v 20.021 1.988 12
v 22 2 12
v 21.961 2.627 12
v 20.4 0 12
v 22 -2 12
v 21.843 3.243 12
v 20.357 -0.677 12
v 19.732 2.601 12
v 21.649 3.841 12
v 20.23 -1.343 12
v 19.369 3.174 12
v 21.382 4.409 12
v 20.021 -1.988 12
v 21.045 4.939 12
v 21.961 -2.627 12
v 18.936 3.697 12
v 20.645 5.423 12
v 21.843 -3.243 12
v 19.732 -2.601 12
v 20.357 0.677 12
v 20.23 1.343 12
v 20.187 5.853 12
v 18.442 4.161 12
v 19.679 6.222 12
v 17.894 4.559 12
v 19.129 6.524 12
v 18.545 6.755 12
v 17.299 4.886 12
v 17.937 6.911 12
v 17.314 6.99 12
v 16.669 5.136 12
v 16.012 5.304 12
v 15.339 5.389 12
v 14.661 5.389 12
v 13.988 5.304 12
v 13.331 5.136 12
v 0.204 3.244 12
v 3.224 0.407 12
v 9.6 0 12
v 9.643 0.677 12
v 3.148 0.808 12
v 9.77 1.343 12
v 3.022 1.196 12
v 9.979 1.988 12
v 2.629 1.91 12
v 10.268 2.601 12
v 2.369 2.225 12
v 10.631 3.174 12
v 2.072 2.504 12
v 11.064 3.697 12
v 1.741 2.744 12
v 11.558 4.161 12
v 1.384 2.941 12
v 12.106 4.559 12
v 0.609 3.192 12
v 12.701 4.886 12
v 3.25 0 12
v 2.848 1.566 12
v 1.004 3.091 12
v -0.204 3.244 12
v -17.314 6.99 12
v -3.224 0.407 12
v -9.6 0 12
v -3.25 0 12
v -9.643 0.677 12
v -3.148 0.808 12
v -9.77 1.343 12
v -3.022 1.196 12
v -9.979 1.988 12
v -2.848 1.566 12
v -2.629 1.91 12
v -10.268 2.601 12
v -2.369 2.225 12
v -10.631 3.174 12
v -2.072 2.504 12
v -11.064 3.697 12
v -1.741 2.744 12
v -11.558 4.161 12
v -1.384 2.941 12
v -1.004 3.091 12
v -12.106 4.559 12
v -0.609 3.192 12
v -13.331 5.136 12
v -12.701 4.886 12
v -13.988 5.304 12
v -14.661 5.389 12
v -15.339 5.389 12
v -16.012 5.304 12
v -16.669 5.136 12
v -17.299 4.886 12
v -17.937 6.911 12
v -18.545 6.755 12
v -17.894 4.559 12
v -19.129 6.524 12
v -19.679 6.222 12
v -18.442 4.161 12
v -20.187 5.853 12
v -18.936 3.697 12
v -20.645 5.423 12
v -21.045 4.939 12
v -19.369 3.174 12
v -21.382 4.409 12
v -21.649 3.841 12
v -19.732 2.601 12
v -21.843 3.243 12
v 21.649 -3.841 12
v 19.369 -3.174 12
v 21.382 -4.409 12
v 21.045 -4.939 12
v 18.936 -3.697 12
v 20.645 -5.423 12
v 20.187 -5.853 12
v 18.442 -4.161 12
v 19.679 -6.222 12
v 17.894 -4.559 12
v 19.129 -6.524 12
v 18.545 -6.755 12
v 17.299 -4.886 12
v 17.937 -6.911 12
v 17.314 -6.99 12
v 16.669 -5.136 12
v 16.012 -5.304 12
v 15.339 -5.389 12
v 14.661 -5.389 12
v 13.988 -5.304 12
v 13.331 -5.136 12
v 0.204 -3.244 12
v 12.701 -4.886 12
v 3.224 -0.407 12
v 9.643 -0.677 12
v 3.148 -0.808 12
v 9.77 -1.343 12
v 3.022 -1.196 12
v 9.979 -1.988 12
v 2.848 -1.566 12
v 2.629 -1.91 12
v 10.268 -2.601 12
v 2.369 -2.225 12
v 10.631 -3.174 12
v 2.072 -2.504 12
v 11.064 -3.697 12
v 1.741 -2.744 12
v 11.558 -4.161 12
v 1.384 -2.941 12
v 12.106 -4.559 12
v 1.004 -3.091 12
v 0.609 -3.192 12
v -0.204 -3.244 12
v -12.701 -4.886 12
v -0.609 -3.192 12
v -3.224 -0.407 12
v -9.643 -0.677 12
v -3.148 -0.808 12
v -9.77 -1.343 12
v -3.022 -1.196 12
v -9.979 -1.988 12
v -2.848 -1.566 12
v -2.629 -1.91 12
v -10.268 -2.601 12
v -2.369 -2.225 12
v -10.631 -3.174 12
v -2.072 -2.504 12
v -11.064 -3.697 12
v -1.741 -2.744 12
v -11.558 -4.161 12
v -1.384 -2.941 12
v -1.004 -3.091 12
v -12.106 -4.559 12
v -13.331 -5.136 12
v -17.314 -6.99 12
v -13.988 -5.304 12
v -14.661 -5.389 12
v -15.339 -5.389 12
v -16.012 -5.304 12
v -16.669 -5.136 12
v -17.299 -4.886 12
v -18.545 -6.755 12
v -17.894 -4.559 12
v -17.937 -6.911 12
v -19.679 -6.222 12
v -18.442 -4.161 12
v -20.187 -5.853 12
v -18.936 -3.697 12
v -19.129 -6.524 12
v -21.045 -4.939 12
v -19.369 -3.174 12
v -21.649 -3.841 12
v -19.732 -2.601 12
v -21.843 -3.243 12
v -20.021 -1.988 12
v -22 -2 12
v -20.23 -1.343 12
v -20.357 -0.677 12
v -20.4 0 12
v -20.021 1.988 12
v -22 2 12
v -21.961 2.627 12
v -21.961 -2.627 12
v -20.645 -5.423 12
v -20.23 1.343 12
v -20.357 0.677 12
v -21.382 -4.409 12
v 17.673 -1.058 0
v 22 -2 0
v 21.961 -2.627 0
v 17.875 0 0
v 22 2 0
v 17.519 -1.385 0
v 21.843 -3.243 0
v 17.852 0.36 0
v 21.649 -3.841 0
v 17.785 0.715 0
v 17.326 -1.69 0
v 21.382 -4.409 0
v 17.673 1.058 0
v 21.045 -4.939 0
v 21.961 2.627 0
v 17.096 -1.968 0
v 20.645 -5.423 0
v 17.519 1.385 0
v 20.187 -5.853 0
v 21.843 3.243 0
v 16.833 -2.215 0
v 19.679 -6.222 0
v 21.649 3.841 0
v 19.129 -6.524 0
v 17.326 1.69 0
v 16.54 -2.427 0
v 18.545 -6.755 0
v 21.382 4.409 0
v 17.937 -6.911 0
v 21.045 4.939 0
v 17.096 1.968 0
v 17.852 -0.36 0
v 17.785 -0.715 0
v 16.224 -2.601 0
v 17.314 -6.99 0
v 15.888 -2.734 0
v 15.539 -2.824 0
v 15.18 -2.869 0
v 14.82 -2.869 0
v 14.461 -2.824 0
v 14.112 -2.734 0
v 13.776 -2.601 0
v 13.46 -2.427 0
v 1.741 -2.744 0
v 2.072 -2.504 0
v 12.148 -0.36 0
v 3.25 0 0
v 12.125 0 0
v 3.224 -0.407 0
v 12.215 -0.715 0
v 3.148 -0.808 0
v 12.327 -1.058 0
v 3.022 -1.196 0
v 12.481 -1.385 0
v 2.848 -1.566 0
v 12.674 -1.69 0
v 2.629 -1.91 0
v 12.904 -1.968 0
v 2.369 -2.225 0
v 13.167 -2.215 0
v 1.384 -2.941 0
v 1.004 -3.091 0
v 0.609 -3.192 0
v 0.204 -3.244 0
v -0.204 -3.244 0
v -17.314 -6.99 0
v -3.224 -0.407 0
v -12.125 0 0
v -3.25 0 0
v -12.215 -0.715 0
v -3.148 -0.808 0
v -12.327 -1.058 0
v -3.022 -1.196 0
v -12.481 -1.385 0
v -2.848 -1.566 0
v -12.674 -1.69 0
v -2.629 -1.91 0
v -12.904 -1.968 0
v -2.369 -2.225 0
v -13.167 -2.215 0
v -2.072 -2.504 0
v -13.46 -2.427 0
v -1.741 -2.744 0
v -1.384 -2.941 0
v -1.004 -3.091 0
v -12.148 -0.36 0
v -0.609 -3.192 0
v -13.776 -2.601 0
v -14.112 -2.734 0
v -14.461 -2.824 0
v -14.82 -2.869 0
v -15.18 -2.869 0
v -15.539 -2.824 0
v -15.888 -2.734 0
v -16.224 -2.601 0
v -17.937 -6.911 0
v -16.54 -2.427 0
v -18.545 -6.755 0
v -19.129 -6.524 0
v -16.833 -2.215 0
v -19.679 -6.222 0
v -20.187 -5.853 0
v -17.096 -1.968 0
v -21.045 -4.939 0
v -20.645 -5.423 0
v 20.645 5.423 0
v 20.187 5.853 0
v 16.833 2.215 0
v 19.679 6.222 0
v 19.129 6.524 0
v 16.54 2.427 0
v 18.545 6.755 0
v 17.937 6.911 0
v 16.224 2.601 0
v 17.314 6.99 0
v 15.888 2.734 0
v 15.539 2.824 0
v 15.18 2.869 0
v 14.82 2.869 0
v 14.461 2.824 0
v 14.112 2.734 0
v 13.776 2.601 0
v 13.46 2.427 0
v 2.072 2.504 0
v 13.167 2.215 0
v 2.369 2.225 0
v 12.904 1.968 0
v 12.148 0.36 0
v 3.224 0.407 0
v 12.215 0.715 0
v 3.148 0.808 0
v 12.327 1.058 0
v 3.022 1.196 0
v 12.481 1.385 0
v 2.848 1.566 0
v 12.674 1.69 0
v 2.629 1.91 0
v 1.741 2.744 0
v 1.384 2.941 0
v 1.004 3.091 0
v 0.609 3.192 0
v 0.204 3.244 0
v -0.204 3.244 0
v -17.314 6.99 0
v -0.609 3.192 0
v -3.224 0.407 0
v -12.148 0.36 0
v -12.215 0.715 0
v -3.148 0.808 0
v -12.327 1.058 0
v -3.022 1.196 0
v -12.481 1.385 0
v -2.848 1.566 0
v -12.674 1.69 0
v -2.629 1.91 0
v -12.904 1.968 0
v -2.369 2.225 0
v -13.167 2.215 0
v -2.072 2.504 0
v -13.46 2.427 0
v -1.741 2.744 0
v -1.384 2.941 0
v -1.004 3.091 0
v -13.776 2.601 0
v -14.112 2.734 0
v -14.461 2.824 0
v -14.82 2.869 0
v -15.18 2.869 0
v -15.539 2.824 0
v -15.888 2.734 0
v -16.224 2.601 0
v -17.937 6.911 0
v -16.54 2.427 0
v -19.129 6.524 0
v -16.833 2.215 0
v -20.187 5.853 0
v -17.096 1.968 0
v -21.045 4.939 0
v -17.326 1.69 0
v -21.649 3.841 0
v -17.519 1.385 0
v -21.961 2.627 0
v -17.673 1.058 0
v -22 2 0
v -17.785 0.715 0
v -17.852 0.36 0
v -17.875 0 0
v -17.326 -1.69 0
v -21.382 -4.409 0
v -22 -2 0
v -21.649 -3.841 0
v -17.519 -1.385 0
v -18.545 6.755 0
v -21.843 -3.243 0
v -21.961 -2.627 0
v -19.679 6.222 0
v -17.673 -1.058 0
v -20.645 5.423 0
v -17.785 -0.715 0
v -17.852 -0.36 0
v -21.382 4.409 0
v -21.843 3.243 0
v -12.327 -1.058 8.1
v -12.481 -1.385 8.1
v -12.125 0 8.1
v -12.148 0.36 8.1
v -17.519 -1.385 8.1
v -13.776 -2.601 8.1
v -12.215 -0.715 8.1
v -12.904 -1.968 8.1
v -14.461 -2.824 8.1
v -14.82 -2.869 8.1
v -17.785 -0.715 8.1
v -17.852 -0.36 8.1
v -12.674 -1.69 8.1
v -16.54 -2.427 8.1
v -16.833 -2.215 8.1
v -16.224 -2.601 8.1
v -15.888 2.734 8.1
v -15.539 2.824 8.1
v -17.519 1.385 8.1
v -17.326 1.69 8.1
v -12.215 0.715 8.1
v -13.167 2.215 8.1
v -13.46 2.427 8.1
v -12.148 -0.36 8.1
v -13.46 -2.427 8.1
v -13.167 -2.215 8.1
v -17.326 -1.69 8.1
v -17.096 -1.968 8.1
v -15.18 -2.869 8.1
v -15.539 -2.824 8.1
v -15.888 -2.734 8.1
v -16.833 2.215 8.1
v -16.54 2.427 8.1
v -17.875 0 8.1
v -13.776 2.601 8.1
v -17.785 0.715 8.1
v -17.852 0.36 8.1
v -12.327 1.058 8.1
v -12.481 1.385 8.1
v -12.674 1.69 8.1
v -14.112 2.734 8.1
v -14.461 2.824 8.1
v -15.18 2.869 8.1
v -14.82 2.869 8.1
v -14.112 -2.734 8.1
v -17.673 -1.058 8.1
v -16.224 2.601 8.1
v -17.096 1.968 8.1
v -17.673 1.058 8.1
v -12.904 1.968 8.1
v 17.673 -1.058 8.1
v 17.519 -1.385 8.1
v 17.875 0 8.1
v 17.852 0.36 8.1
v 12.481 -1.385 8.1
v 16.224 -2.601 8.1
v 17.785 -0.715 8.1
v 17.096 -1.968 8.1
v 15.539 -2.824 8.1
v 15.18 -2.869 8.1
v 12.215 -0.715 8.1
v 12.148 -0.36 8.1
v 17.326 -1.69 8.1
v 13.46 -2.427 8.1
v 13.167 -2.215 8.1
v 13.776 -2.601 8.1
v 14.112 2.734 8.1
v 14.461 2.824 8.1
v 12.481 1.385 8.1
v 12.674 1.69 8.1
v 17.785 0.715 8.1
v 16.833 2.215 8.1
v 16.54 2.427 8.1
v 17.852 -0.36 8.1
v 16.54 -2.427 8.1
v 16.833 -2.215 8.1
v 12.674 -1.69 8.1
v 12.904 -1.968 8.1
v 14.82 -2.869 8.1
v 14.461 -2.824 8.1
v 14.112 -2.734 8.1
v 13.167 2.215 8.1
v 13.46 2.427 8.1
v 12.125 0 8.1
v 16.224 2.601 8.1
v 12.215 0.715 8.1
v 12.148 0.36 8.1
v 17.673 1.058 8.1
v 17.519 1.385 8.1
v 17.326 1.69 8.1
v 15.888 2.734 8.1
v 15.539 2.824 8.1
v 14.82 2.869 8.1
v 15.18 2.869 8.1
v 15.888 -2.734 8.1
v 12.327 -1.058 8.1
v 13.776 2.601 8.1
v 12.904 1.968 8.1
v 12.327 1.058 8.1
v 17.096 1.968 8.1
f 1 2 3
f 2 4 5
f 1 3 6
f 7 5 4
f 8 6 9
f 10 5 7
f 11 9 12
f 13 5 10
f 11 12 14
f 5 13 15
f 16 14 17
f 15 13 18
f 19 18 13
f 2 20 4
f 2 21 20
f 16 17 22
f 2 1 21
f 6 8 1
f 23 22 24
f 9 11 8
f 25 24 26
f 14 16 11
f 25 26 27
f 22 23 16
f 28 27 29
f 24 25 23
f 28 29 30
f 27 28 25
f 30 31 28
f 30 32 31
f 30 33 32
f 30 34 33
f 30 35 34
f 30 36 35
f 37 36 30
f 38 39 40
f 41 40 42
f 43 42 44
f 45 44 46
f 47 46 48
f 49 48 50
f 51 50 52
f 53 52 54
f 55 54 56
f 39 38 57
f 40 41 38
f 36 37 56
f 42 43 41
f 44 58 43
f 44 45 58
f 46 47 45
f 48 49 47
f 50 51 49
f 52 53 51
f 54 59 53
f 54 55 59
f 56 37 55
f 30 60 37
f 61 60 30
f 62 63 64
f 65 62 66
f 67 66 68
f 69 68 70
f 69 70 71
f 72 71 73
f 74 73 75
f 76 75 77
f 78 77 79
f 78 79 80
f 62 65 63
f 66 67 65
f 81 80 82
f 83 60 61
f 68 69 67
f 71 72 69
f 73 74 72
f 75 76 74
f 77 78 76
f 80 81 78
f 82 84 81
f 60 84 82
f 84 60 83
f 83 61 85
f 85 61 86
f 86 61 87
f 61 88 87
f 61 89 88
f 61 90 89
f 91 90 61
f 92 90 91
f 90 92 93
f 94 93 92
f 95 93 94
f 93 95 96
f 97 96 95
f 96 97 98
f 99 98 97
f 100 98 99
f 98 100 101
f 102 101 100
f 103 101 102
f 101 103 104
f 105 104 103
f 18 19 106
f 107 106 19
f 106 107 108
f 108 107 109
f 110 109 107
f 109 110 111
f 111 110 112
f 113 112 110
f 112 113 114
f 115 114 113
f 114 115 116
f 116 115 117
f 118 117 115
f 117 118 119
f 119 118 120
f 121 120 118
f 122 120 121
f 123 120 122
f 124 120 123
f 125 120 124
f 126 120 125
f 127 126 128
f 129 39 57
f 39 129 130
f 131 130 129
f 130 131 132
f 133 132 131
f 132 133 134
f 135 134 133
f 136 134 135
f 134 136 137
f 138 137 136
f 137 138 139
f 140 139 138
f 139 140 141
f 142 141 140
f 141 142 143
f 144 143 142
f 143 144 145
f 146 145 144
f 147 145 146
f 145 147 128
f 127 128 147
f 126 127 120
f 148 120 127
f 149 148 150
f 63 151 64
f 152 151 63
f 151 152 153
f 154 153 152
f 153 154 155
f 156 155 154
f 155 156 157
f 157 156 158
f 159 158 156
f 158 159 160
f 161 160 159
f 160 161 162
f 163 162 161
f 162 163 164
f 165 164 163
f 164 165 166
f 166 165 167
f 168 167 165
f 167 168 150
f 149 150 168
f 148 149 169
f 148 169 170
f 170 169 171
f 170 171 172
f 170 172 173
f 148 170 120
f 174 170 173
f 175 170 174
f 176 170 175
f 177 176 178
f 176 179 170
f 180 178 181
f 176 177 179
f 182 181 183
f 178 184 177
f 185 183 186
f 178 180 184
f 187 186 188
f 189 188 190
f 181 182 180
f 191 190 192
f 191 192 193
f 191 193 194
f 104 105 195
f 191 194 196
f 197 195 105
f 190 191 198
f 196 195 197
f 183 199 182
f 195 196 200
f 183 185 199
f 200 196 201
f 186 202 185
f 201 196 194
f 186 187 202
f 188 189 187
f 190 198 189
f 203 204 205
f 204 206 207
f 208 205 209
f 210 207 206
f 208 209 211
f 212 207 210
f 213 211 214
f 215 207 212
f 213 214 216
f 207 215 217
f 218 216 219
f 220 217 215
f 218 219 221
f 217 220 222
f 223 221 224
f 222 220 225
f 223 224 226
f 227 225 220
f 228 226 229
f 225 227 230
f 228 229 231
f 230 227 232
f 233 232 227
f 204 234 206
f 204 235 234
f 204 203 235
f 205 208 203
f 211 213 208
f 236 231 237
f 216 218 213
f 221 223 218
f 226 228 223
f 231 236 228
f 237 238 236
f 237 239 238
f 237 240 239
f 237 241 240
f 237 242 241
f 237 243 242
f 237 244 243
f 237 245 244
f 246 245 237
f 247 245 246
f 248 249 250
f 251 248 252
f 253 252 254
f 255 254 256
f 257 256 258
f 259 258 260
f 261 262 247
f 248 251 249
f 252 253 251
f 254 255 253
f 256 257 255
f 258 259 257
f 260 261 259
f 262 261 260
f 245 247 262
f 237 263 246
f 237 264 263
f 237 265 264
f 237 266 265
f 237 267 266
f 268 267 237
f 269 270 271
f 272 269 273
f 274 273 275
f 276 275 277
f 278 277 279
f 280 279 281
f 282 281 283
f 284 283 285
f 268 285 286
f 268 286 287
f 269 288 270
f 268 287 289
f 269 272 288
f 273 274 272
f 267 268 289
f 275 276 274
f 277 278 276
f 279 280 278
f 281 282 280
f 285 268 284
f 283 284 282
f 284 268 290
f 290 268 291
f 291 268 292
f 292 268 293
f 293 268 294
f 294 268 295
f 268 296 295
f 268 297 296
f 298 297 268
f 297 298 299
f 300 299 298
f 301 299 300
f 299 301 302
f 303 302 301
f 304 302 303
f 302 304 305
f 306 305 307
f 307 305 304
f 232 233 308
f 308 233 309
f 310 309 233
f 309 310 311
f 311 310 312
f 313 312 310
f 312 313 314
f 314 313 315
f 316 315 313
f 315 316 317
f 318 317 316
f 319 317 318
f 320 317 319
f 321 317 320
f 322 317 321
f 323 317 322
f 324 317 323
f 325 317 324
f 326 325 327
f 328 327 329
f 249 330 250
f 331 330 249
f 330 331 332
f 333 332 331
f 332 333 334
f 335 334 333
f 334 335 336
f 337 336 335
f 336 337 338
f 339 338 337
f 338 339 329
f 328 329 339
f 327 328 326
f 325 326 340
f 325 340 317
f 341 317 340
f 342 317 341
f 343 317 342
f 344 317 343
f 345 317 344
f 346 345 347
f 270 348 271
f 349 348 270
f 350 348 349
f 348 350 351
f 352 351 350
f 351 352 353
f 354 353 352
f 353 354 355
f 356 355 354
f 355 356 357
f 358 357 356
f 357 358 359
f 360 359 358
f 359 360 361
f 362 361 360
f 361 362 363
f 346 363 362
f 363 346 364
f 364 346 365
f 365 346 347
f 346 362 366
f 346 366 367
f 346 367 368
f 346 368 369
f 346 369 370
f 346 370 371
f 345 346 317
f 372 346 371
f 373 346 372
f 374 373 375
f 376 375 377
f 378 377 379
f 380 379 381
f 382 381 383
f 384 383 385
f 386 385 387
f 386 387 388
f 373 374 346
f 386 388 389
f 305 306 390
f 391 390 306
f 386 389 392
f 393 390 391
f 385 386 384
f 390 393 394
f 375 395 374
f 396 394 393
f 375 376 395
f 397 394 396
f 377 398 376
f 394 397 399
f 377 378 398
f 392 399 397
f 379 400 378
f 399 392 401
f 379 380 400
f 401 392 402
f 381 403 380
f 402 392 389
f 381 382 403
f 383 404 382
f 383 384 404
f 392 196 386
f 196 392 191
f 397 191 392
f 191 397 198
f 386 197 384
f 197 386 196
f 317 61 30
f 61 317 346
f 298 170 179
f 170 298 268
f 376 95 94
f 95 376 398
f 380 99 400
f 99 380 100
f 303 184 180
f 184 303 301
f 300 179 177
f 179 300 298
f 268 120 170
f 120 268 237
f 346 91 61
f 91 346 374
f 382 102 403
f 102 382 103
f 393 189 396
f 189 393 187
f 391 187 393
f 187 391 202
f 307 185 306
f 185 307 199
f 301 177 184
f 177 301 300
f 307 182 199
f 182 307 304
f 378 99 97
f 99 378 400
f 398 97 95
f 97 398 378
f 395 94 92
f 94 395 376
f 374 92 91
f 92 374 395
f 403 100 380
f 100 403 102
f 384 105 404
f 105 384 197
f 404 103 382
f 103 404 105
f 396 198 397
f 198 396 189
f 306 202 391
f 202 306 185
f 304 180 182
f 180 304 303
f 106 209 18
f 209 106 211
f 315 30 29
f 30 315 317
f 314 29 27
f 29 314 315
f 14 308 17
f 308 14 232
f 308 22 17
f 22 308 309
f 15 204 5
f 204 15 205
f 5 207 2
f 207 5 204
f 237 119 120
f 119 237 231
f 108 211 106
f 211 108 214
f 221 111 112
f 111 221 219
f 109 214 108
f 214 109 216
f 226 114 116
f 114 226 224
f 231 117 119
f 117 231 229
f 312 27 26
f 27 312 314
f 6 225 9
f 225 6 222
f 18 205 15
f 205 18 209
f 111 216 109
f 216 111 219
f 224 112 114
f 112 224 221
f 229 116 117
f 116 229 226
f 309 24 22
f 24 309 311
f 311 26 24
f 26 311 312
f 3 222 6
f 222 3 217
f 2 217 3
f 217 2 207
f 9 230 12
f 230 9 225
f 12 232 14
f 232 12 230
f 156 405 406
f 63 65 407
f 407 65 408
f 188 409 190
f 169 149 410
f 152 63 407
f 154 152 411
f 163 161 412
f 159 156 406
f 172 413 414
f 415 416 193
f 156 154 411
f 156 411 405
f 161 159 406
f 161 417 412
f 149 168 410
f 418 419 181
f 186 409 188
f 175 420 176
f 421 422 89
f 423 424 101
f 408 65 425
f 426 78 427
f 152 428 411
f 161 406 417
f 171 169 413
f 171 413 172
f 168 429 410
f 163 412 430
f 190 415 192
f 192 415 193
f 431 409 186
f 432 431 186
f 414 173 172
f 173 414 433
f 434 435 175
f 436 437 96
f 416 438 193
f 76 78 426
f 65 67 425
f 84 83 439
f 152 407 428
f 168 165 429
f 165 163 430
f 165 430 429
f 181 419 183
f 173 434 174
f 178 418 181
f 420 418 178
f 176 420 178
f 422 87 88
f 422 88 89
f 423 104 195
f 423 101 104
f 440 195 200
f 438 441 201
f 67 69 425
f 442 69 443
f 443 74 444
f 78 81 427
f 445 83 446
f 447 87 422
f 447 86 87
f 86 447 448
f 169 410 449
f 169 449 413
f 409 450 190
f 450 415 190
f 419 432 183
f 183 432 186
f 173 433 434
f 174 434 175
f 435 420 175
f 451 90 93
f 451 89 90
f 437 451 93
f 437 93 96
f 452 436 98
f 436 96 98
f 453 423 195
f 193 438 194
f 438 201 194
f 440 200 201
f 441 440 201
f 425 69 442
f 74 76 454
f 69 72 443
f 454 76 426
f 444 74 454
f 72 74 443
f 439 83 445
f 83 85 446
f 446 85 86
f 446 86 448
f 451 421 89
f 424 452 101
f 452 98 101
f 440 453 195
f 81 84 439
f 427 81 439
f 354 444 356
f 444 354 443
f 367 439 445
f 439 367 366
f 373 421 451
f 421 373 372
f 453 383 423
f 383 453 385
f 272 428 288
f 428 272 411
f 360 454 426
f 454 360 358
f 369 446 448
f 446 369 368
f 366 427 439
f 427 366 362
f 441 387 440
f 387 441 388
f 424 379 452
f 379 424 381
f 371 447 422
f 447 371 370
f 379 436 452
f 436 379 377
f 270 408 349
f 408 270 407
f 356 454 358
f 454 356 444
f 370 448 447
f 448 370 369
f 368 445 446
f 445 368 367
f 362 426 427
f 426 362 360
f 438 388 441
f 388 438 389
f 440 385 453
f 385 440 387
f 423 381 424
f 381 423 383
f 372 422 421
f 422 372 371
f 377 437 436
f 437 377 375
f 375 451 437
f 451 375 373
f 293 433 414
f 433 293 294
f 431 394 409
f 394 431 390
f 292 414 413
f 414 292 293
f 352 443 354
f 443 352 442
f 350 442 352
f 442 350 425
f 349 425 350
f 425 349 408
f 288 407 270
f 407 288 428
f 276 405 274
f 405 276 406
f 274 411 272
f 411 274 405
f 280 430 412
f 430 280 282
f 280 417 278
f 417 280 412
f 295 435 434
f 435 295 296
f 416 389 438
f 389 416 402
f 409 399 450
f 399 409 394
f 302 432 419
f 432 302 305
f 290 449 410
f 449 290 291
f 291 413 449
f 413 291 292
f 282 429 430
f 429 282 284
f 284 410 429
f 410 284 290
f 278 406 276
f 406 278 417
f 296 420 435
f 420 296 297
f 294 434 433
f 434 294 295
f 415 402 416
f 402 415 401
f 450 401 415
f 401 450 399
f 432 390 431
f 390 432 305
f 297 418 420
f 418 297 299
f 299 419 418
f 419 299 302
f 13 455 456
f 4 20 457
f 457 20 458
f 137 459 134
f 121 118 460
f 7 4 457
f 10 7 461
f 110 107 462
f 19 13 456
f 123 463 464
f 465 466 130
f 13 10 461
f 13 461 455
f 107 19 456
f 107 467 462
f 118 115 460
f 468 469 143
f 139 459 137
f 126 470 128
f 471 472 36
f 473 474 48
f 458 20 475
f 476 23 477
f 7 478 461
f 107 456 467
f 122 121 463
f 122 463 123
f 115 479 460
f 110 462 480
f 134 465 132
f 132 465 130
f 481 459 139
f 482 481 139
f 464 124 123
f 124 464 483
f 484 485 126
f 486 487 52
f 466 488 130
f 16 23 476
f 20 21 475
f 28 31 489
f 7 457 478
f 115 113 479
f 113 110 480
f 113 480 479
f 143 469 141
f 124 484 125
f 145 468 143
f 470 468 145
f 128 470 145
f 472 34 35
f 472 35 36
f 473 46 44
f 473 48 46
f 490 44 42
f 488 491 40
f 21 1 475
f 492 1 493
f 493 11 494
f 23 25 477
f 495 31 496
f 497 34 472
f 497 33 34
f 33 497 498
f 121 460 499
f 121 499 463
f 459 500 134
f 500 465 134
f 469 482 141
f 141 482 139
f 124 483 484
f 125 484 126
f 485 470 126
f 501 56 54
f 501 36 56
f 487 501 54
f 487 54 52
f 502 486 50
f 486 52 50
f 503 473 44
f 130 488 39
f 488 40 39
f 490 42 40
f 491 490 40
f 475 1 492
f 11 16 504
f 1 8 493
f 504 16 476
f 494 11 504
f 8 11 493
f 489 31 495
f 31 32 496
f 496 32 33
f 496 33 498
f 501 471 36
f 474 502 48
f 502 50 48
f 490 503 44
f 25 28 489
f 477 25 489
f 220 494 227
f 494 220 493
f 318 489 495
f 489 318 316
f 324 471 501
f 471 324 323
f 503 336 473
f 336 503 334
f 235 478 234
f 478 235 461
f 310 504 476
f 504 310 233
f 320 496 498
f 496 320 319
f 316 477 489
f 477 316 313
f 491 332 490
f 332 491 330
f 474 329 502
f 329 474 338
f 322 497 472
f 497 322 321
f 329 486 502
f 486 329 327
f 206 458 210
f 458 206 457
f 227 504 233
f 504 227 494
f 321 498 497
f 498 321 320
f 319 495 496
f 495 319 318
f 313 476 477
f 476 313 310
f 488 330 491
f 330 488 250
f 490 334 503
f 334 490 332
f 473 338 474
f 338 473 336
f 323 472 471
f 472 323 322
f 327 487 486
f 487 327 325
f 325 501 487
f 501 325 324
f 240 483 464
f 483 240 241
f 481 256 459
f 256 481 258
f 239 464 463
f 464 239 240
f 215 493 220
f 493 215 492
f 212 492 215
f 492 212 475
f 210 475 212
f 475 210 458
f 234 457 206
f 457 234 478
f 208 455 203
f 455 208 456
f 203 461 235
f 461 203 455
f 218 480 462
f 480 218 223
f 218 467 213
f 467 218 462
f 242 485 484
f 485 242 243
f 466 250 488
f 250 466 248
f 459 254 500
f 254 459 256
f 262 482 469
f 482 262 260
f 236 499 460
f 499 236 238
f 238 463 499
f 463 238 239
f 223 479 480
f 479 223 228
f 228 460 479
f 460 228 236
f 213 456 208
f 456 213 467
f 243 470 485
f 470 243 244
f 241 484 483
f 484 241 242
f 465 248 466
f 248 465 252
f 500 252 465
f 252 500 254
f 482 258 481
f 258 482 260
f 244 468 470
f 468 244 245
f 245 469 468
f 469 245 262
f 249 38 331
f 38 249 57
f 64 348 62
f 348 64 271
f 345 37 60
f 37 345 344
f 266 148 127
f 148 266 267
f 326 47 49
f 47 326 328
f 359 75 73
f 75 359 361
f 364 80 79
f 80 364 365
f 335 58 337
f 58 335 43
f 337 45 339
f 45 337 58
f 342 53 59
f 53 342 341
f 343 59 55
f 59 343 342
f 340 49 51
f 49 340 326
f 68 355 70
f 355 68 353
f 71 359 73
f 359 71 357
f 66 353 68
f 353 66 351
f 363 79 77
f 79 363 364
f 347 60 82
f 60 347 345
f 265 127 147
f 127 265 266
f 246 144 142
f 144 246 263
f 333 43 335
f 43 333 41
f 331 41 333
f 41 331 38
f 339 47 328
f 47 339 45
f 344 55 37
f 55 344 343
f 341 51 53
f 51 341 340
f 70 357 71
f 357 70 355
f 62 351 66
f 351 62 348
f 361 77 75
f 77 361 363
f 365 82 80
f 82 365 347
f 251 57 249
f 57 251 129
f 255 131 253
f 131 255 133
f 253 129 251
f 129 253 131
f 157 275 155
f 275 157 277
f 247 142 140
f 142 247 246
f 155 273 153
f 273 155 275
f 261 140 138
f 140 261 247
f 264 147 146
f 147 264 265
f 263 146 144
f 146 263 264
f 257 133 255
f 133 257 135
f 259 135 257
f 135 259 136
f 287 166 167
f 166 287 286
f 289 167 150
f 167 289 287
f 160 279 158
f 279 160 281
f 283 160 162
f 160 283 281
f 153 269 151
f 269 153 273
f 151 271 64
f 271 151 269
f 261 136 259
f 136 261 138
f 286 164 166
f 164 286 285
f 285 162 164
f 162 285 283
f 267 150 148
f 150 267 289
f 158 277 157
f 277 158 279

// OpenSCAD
$fn = 50;


difference() {
	union() {
		cylinder(h = 12, r = 7.0000000000);
		translate(v = [-7.5000000000, 0.0000000000, 0]) {
			hull() {
				translate(v = [-9.5000000000, 2.0000000000, 0]) {
					cylinder(h = 12, r = 5);
				}
				translate(v = [9.5000000000, 2.0000000000, 0]) {
					cylinder(h = 12, r = 5);
				}
				translate(v = [-9.5000000000, -2.0000000000, 0]) {
					cylinder(h = 12, r = 5);
				}
				translate(v = [9.5000000000, -2.0000000000, 0]) {
					cylinder(h = 12, r = 5);
				}
			}
		}
		translate(v = [-7.5000000000, 0.0000000000, 0]) {
			hull() {
				translate(v = [-9.5000000000, 2.0000000000, 0]) {
					cylinder(h = 12, r = 5);
				}
				translate(v = [9.5000000000, 2.0000000000, 0]) {
					cylinder(h = 12, r = 5);
				}
				translate(v = [-9.5000000000, -2.0000000000, 0]) {
					cylinder(h = 12, r = 5);
				}
				translate(v = [9.5000000000, -2.0000000000, 0]) {
					cylinder(h = 12, r = 5);
				}
			}
		}
		translate(v = [7.5000000000, 0.0000000000, 0]) {
			hull() {
				translate(v = [-9.5000000000, 2.0000000000, 0]) {
					cylinder(h = 12, r = 5);
				}
				translate(v = [9.5000000000, 2.0000000000, 0]) {
					cylinder(h = 12, r = 5);
				}
				translate(v = [-9.5000000000, -2.0000000000, 0]) {
					cylinder(h = 12, r = 5);
				}
				translate(v = [9.5000000000, -2.0000000000, 0]) {
					cylinder(h = 12, r = 5);
				}
			}
		}
		translate(v = [7.5000000000, 0.0000000000, 0]) {
			hull() {
				translate(v = [-9.5000000000, 2.0000000000, 0]) {
					cylinder(h = 12, r = 5);
				}
				translate(v = [9.5000000000, 2.0000000000, 0]) {
					cylinder(h = 12, r = 5);
				}
				translate(v = [-9.5000000000, -2.0000000000, 0]) {
					cylinder(h = 12, r = 5);
				}
				translate(v = [9.5000000000, -2.0000000000, 0]) {
					cylinder(h = 12, r = 5);
				}
			}
		}
	}
	union() {
		translate(v = [-15.0000000000, 0.0000000000, 12]) {
			rotate(a = [0, 0, 0]) {
				difference() {
					union() {
						#translate(v = [0, 0, -12.0000000000]) {
							cylinder(h = 12, r = 2.6000000000);
						}
						#translate(v = [0, 0, -3.9000000000]) {
							cylinder(h = 3.9000000000, r1 = 2.8750000000, r2 = 5.4000000000);
						}
						#translate(v = [0, 0, -12.0000000000]) {
							cylinder(h = 12, r = 2.8750000000);
						}
						#translate(v = [0, 0, -12.0000000000]) {
							cylinder(h = 12, r = 2.6000000000);
						}
					}
					union();
				}
			}
		}
		translate(v = [-15.0000000000, 0.0000000000, 12]) {
			rotate(a = [0, 0, 0]) {
				difference() {
					union() {
						#translate(v = [0, 0, -12.0000000000]) {
							cylinder(h = 12, r = 2.6000000000);
						}
						#translate(v = [0, 0, -3.9000000000]) {
							cylinder(h = 3.9000000000, r1 = 2.8750000000, r2 = 5.4000000000);
						}
						#translate(v = [0, 0, -12.0000000000]) {
							cylinder(h = 12, r = 2.8750000000);
						}
						#translate(v = [0, 0, -12.0000000000]) {
							cylinder(h = 12, r = 2.6000000000);
						}
					}
					union();
				}
			}
		}
		translate(v = [15.0000000000, 0.0000000000, 12]) {
			rotate(a = [0, 0, 0]) {
				difference() {
					union() {
						#translate(v = [0, 0, -12.0000000000]) {
							cylinder(h = 12, r = 2.6000000000);
						}
						#translate(v = [0, 0, -3.9000000000]) {
							cylinder(h = 3.9000000000, r1 = 2.8750000000, r2 = 5.4000000000);
						}
						#translate(v = [0, 0, -12.0000000000]) {
							cylinder(h = 12, r = 2.8750000000);
						}
						#translate(v = [0, 0, -12.0000000000]) {
							cylinder(h = 12, r = 2.6000000000);
						}
					}
					union();
				}
			}
		}
		translate(v = [15.0000000000, 0.0000000000, 12]) {
			rotate(a = [0, 0, 0]) {
				difference() {
					union() {
						#translate(v = [0, 0, -12.0000000000]) {
							cylinder(h = 12, r = 2.6000000000);
						}
						#translate(v = [0, 0, -3.9000000000]) {
							cylinder(h = 3.9000000000, r1 = 2.8750000000, r2 = 5.4000000000);
						}
						#translate(v = [0, 0, -12.0000000000]) {
							cylinder(h = 12, r = 2.8750000000);
						}
						#translate(v = [0, 0, -12.0000000000]) {
							cylinder(h = 12, r = 2.6000000000);
						}
					}
					union();
				}
			}
		}
		translate(v = [0, 0, -100]) {
			cylinder(h = 200, r = 3.2500000000);
		}
		translate(v = [0, 0, -100]) {
			cylinder(h = 200, r = 1.8000000000);
		}
	}
}
